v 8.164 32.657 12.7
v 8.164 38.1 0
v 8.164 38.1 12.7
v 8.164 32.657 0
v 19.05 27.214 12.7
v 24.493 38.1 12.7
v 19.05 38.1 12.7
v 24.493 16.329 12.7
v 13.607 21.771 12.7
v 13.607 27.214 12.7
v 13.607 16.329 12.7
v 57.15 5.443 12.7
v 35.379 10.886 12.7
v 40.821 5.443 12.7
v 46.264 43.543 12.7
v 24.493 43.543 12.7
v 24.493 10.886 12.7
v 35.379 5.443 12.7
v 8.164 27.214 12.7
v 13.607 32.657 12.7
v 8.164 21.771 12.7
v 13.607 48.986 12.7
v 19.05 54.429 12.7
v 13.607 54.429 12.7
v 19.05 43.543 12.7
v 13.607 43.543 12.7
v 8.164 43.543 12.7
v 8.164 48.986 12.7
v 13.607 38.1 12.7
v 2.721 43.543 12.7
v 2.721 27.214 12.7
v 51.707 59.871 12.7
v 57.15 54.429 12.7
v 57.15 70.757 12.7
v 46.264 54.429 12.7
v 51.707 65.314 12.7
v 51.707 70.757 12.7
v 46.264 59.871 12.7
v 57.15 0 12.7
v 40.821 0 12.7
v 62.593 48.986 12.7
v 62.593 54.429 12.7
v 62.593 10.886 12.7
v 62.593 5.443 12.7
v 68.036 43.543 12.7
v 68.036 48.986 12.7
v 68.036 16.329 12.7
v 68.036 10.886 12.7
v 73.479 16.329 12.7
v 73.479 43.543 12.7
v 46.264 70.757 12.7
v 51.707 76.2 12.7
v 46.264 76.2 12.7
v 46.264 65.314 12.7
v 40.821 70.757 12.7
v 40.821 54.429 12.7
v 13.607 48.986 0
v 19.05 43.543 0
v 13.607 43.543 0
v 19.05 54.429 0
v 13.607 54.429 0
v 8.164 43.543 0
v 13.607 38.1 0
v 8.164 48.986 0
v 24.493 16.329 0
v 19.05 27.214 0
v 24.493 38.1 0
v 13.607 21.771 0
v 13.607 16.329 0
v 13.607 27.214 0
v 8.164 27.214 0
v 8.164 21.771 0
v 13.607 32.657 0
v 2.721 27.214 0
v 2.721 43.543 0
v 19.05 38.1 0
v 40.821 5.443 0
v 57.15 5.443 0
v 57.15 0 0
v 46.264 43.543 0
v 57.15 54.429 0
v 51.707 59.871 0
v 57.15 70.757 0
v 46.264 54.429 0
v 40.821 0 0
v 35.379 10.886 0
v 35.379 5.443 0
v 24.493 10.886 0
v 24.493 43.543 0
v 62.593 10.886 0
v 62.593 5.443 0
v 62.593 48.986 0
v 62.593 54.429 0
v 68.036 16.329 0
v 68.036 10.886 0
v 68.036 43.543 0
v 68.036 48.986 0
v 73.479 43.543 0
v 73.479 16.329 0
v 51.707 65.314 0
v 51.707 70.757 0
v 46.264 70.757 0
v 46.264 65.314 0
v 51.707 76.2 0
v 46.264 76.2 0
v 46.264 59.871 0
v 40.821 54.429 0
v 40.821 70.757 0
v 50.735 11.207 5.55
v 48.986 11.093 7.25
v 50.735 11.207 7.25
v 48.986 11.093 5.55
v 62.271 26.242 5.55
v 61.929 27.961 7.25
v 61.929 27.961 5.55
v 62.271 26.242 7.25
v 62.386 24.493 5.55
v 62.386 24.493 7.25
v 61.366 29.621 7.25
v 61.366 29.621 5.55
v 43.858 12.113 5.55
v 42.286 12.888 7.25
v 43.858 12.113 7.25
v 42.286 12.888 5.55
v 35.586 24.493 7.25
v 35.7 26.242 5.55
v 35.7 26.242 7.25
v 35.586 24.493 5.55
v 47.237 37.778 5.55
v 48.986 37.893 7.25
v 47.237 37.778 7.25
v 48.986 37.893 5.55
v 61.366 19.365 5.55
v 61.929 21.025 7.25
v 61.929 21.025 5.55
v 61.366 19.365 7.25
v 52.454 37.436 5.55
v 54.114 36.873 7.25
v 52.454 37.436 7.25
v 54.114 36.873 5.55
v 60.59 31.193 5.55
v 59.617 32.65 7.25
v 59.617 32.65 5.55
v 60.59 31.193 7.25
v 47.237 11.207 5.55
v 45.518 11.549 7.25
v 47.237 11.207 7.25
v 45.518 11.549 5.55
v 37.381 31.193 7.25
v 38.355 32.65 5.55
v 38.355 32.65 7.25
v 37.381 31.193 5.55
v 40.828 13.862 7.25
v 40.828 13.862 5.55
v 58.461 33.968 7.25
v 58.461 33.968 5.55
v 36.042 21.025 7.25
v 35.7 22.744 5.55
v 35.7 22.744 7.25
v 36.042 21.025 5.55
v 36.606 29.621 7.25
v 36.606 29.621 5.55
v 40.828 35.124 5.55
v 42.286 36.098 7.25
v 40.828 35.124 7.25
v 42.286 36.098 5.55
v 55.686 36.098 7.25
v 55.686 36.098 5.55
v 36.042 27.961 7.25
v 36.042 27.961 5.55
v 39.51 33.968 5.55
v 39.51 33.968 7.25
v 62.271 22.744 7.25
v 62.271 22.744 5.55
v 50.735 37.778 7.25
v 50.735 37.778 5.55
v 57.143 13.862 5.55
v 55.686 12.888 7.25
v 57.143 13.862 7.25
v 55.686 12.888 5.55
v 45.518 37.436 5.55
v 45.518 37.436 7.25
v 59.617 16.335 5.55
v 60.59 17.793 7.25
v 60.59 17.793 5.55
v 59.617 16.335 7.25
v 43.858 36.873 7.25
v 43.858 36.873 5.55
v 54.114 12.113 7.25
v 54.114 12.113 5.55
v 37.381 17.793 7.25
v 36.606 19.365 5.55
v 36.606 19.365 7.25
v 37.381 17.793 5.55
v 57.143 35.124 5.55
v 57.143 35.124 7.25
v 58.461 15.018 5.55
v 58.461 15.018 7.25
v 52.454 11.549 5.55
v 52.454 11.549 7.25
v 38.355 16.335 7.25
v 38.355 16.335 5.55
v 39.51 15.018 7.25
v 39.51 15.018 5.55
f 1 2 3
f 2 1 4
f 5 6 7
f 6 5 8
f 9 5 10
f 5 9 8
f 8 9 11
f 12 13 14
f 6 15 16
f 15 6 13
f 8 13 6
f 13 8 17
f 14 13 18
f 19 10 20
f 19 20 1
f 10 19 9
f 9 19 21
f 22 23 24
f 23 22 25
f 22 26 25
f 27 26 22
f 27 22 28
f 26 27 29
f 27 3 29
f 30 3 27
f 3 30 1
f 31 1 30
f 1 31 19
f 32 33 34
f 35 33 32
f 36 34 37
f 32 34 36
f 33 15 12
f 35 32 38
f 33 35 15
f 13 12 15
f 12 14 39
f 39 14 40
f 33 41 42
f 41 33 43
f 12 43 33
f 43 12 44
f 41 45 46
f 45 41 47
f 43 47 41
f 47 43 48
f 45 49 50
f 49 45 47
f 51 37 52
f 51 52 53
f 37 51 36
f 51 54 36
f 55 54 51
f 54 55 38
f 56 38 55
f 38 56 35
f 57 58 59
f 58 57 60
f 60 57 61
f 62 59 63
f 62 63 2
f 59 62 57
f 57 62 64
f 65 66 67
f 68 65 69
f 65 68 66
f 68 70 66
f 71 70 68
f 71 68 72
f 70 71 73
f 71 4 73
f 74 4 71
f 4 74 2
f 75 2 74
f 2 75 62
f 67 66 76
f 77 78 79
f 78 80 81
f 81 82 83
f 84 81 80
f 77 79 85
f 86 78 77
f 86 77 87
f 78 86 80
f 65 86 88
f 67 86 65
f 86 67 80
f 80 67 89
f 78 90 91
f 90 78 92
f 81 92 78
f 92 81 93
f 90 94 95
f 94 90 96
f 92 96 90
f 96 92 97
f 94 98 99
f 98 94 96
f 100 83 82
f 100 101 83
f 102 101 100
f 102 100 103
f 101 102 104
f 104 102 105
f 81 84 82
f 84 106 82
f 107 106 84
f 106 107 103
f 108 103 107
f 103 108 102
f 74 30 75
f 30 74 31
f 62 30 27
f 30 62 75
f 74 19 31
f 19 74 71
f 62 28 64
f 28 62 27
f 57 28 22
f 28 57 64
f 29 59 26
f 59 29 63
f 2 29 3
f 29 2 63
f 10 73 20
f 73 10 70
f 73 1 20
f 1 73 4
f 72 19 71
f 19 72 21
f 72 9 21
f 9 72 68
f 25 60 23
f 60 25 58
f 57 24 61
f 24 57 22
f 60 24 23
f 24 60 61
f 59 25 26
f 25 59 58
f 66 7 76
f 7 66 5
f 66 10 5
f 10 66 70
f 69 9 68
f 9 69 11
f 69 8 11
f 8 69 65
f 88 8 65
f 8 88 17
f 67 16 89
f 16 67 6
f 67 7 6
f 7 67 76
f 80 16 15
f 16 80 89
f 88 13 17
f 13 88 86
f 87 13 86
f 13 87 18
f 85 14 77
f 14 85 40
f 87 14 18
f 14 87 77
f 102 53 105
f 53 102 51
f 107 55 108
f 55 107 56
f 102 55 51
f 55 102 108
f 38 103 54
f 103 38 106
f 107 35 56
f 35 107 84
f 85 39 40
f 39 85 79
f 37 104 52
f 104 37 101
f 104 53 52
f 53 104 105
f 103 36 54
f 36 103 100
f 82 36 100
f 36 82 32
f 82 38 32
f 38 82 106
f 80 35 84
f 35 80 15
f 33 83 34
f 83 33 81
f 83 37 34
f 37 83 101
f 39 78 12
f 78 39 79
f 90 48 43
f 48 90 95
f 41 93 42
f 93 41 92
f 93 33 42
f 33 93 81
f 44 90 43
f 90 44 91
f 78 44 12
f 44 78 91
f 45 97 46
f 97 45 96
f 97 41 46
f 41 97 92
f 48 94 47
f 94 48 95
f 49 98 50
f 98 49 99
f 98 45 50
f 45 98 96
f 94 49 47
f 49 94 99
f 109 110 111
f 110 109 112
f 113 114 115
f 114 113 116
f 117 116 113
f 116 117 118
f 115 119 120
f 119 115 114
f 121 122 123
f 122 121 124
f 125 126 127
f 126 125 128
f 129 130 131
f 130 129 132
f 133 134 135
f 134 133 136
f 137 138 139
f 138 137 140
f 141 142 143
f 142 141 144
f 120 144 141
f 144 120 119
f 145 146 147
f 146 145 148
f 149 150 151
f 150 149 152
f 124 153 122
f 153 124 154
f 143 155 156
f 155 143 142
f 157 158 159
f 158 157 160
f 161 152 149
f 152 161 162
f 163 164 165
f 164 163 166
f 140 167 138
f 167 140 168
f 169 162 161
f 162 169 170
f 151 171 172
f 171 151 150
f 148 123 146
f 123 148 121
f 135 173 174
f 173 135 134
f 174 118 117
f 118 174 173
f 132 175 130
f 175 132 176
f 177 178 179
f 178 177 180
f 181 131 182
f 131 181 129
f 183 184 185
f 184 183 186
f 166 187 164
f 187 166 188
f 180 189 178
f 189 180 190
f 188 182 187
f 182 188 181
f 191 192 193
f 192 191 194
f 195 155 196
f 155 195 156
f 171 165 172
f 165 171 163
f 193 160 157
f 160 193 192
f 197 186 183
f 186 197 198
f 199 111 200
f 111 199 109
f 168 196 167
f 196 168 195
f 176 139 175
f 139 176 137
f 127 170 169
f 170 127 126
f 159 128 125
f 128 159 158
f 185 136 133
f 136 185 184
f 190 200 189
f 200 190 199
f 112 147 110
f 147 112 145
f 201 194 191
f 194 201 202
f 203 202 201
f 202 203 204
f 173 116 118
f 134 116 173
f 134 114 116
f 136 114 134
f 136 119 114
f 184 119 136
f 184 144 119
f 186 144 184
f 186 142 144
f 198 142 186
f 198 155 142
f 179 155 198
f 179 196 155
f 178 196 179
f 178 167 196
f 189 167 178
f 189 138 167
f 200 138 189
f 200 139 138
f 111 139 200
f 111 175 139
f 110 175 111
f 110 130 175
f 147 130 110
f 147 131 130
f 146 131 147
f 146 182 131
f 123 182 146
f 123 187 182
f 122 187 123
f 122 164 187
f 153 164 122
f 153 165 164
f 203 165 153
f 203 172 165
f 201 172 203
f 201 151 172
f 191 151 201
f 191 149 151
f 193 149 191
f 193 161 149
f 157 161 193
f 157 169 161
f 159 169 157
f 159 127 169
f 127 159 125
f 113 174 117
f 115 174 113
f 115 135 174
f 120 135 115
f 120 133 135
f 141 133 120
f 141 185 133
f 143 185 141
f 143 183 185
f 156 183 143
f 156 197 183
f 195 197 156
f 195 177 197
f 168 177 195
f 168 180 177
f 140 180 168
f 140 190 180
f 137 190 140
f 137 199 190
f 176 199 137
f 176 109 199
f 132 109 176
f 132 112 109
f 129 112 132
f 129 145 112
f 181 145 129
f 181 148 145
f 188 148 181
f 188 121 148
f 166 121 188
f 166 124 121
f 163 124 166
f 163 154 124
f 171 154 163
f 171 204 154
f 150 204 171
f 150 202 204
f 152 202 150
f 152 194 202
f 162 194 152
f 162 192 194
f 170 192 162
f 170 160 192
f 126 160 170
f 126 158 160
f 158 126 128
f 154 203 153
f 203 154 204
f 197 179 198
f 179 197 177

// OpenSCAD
// string — Minecraft Item Shape 3D Model
// Auto-generated from minecraft/textures/item/string.png
//
// Open in OpenSCAD → F5 preview → F6 render → F7 export STL

// ============================================================
// PARAMETERS
// ============================================================

GRID_SIZE_IN    = 3.0;           // crafting table slot size
PIXELS          = 14;              // grid divisions (shape-fitted)
PIXEL_MM        = (GRID_SIZE_IN * 25.4) / PIXELS;  // mm per pixel

DEPTH_IN        = 0.5;          // extrusion depth in inches
DEPTH_MM        = DEPTH_IN * 25.4;

// NFC tag (NTAG215 25mm coin)
TAG_DIAMETER    = 26;           // mm — slightly oversized for easy drop-in
TAG_THICKNESS   = 1.2;         // mm
TAG_CLEARANCE   = 0.4;         // mm extra around tag

cavity_d = TAG_DIAMETER + TAG_CLEARANCE * 2;
cavity_h = TAG_THICKNESS + TAG_CLEARANCE;

echo(str("Tag cavity: ", cavity_d, "mm dia × ", cavity_h, "mm deep"));
echo(str("PAUSE AT: ", DEPTH_MM / 2 + cavity_h / 2, "mm to insert tag"));

module tag_cavity() {
    cx = (8.5 + 0.5) * PIXEL_MM;
    cy = (PIXELS - 1 - 9.0 + 0.5) * PIXEL_MM;
    translate([cx, cy, DEPTH_MM / 2 - cavity_h / 2])
        cylinder(d = cavity_d, h = cavity_h + 0.1, $fn = 48);
}

module tag_shelf() {
    cx = (8.5 + 0.5) * PIXEL_MM;
    cy = (PIXELS - 1 - 9.0 + 0.5) * PIXEL_MM;
    translate([cx, cy, DEPTH_MM / 2 - cavity_h / 2 - 1.0])
        cylinder(d = cavity_d + 4, h = 1.0, $fn = 48);
}

echo(str("Pixel size: ", PIXEL_MM, "mm"));
echo(str("Footprint: ", PIXELS * PIXEL_MM, "mm = ", GRID_SIZE_IN, " in"));
echo(str("Depth: ", DEPTH_MM, "mm = ", DEPTH_IN, " in"));

// ============================================================
// PIXEL MAP — 75 opaque pixels + center fill
// ============================================================

item_pixels = [
    [0.5,6.0], [0.5,7.0], [0.5,8.0], [1.5,5.0], [1.5,6.0], [1.5,8.0], [1.5,9.0], [2.5,4.0],
    [2.5,5.0], [2.5,9.0], [2.5,10.0], [3.5,7.0], [3.5,8.0], [3.5,9.0], [3.5,10.0], [4.5,6.0],
    [4.5,7.0], [4.5,8.0], [4.5,9.0], [4.5,10.0], [4.5,11.0], [5.5,6.0], [5.5,7.0], [5.5,9.0],
    [5.5,10.0], [5.5,11.0], [6.5,6.0], [6.5,7.0], [6.5,10.0], [6.5,11.0], [6.5,12.0], [7.5,1.0],
    [7.5,2.0], [7.5,3.0], [7.5,6.0], [7.5,7.0], [7.5,10.0], [7.5,11.0], [7.5,12.0], [7.5,13.0],
    [8.5,0.0], [8.5,1.0], [8.5,3.0], [8.5,4.0], [8.5,7.0], [8.5,8.0], [8.5,10.0], [8.5,11.0],
    [8.5,12.0], [8.5,13.0], [9.5,1.0], [9.5,2.0], [9.5,3.0], [9.5,4.0], [9.5,7.0], [9.5,8.0],
    [9.5,9.0], [9.5,10.0], [9.5,12.0], [9.5,13.0], [10.5,4.0], [10.5,5.0], [10.5,8.0], [10.5,9.0],
    [10.5,11.0], [10.5,12.0], [11.5,5.0], [11.5,6.0], [11.5,10.0], [11.5,11.0], [12.5,6.0], [12.5,7.0],
    [12.5,8.0], [12.5,9.0], [12.5,10.0],
    // Center fill — solid pixels to support NFC tag cavity
    [5.5,8.0], [6.5,8.0], [6.5,9.0], [7.5,8.0], [7.5,9.0],
    [8.5,9.0], [8.5,5.0], [8.5,6.0], [9.5,5.0], [9.5,6.0],
    [9.5,11.0], [10.5,6.0], [10.5,7.0], [10.5,10.0], [11.5,7.0],
    [11.5,8.0], [11.5,9.0]
];

// ============================================================
// MODULES
// ============================================================

module pixel_block(col, row) {
    translate([col * PIXEL_MM, (PIXELS - 1 - row) * PIXEL_MM, 0])
        cube([PIXEL_MM, PIXEL_MM, DEPTH_MM]);
}

module item_shape() {
    for (i = [0 : len(item_pixels) - 1])
        pixel_block(item_pixels[i][0], item_pixels[i][1]);
}

module item_final() {
    difference() {
        union() {
            item_shape();
            intersection() {
                item_shape();
                tag_shelf();
            }
        }
        tag_cavity();
    }
}

item_final();

// Cross-section view (uncomment to see tag cavity):
// difference() {
//     item_final();
//     translate([8 * PIXEL_MM + 50, 0, 0])
//         cube([100, 200, 100]);
// }
